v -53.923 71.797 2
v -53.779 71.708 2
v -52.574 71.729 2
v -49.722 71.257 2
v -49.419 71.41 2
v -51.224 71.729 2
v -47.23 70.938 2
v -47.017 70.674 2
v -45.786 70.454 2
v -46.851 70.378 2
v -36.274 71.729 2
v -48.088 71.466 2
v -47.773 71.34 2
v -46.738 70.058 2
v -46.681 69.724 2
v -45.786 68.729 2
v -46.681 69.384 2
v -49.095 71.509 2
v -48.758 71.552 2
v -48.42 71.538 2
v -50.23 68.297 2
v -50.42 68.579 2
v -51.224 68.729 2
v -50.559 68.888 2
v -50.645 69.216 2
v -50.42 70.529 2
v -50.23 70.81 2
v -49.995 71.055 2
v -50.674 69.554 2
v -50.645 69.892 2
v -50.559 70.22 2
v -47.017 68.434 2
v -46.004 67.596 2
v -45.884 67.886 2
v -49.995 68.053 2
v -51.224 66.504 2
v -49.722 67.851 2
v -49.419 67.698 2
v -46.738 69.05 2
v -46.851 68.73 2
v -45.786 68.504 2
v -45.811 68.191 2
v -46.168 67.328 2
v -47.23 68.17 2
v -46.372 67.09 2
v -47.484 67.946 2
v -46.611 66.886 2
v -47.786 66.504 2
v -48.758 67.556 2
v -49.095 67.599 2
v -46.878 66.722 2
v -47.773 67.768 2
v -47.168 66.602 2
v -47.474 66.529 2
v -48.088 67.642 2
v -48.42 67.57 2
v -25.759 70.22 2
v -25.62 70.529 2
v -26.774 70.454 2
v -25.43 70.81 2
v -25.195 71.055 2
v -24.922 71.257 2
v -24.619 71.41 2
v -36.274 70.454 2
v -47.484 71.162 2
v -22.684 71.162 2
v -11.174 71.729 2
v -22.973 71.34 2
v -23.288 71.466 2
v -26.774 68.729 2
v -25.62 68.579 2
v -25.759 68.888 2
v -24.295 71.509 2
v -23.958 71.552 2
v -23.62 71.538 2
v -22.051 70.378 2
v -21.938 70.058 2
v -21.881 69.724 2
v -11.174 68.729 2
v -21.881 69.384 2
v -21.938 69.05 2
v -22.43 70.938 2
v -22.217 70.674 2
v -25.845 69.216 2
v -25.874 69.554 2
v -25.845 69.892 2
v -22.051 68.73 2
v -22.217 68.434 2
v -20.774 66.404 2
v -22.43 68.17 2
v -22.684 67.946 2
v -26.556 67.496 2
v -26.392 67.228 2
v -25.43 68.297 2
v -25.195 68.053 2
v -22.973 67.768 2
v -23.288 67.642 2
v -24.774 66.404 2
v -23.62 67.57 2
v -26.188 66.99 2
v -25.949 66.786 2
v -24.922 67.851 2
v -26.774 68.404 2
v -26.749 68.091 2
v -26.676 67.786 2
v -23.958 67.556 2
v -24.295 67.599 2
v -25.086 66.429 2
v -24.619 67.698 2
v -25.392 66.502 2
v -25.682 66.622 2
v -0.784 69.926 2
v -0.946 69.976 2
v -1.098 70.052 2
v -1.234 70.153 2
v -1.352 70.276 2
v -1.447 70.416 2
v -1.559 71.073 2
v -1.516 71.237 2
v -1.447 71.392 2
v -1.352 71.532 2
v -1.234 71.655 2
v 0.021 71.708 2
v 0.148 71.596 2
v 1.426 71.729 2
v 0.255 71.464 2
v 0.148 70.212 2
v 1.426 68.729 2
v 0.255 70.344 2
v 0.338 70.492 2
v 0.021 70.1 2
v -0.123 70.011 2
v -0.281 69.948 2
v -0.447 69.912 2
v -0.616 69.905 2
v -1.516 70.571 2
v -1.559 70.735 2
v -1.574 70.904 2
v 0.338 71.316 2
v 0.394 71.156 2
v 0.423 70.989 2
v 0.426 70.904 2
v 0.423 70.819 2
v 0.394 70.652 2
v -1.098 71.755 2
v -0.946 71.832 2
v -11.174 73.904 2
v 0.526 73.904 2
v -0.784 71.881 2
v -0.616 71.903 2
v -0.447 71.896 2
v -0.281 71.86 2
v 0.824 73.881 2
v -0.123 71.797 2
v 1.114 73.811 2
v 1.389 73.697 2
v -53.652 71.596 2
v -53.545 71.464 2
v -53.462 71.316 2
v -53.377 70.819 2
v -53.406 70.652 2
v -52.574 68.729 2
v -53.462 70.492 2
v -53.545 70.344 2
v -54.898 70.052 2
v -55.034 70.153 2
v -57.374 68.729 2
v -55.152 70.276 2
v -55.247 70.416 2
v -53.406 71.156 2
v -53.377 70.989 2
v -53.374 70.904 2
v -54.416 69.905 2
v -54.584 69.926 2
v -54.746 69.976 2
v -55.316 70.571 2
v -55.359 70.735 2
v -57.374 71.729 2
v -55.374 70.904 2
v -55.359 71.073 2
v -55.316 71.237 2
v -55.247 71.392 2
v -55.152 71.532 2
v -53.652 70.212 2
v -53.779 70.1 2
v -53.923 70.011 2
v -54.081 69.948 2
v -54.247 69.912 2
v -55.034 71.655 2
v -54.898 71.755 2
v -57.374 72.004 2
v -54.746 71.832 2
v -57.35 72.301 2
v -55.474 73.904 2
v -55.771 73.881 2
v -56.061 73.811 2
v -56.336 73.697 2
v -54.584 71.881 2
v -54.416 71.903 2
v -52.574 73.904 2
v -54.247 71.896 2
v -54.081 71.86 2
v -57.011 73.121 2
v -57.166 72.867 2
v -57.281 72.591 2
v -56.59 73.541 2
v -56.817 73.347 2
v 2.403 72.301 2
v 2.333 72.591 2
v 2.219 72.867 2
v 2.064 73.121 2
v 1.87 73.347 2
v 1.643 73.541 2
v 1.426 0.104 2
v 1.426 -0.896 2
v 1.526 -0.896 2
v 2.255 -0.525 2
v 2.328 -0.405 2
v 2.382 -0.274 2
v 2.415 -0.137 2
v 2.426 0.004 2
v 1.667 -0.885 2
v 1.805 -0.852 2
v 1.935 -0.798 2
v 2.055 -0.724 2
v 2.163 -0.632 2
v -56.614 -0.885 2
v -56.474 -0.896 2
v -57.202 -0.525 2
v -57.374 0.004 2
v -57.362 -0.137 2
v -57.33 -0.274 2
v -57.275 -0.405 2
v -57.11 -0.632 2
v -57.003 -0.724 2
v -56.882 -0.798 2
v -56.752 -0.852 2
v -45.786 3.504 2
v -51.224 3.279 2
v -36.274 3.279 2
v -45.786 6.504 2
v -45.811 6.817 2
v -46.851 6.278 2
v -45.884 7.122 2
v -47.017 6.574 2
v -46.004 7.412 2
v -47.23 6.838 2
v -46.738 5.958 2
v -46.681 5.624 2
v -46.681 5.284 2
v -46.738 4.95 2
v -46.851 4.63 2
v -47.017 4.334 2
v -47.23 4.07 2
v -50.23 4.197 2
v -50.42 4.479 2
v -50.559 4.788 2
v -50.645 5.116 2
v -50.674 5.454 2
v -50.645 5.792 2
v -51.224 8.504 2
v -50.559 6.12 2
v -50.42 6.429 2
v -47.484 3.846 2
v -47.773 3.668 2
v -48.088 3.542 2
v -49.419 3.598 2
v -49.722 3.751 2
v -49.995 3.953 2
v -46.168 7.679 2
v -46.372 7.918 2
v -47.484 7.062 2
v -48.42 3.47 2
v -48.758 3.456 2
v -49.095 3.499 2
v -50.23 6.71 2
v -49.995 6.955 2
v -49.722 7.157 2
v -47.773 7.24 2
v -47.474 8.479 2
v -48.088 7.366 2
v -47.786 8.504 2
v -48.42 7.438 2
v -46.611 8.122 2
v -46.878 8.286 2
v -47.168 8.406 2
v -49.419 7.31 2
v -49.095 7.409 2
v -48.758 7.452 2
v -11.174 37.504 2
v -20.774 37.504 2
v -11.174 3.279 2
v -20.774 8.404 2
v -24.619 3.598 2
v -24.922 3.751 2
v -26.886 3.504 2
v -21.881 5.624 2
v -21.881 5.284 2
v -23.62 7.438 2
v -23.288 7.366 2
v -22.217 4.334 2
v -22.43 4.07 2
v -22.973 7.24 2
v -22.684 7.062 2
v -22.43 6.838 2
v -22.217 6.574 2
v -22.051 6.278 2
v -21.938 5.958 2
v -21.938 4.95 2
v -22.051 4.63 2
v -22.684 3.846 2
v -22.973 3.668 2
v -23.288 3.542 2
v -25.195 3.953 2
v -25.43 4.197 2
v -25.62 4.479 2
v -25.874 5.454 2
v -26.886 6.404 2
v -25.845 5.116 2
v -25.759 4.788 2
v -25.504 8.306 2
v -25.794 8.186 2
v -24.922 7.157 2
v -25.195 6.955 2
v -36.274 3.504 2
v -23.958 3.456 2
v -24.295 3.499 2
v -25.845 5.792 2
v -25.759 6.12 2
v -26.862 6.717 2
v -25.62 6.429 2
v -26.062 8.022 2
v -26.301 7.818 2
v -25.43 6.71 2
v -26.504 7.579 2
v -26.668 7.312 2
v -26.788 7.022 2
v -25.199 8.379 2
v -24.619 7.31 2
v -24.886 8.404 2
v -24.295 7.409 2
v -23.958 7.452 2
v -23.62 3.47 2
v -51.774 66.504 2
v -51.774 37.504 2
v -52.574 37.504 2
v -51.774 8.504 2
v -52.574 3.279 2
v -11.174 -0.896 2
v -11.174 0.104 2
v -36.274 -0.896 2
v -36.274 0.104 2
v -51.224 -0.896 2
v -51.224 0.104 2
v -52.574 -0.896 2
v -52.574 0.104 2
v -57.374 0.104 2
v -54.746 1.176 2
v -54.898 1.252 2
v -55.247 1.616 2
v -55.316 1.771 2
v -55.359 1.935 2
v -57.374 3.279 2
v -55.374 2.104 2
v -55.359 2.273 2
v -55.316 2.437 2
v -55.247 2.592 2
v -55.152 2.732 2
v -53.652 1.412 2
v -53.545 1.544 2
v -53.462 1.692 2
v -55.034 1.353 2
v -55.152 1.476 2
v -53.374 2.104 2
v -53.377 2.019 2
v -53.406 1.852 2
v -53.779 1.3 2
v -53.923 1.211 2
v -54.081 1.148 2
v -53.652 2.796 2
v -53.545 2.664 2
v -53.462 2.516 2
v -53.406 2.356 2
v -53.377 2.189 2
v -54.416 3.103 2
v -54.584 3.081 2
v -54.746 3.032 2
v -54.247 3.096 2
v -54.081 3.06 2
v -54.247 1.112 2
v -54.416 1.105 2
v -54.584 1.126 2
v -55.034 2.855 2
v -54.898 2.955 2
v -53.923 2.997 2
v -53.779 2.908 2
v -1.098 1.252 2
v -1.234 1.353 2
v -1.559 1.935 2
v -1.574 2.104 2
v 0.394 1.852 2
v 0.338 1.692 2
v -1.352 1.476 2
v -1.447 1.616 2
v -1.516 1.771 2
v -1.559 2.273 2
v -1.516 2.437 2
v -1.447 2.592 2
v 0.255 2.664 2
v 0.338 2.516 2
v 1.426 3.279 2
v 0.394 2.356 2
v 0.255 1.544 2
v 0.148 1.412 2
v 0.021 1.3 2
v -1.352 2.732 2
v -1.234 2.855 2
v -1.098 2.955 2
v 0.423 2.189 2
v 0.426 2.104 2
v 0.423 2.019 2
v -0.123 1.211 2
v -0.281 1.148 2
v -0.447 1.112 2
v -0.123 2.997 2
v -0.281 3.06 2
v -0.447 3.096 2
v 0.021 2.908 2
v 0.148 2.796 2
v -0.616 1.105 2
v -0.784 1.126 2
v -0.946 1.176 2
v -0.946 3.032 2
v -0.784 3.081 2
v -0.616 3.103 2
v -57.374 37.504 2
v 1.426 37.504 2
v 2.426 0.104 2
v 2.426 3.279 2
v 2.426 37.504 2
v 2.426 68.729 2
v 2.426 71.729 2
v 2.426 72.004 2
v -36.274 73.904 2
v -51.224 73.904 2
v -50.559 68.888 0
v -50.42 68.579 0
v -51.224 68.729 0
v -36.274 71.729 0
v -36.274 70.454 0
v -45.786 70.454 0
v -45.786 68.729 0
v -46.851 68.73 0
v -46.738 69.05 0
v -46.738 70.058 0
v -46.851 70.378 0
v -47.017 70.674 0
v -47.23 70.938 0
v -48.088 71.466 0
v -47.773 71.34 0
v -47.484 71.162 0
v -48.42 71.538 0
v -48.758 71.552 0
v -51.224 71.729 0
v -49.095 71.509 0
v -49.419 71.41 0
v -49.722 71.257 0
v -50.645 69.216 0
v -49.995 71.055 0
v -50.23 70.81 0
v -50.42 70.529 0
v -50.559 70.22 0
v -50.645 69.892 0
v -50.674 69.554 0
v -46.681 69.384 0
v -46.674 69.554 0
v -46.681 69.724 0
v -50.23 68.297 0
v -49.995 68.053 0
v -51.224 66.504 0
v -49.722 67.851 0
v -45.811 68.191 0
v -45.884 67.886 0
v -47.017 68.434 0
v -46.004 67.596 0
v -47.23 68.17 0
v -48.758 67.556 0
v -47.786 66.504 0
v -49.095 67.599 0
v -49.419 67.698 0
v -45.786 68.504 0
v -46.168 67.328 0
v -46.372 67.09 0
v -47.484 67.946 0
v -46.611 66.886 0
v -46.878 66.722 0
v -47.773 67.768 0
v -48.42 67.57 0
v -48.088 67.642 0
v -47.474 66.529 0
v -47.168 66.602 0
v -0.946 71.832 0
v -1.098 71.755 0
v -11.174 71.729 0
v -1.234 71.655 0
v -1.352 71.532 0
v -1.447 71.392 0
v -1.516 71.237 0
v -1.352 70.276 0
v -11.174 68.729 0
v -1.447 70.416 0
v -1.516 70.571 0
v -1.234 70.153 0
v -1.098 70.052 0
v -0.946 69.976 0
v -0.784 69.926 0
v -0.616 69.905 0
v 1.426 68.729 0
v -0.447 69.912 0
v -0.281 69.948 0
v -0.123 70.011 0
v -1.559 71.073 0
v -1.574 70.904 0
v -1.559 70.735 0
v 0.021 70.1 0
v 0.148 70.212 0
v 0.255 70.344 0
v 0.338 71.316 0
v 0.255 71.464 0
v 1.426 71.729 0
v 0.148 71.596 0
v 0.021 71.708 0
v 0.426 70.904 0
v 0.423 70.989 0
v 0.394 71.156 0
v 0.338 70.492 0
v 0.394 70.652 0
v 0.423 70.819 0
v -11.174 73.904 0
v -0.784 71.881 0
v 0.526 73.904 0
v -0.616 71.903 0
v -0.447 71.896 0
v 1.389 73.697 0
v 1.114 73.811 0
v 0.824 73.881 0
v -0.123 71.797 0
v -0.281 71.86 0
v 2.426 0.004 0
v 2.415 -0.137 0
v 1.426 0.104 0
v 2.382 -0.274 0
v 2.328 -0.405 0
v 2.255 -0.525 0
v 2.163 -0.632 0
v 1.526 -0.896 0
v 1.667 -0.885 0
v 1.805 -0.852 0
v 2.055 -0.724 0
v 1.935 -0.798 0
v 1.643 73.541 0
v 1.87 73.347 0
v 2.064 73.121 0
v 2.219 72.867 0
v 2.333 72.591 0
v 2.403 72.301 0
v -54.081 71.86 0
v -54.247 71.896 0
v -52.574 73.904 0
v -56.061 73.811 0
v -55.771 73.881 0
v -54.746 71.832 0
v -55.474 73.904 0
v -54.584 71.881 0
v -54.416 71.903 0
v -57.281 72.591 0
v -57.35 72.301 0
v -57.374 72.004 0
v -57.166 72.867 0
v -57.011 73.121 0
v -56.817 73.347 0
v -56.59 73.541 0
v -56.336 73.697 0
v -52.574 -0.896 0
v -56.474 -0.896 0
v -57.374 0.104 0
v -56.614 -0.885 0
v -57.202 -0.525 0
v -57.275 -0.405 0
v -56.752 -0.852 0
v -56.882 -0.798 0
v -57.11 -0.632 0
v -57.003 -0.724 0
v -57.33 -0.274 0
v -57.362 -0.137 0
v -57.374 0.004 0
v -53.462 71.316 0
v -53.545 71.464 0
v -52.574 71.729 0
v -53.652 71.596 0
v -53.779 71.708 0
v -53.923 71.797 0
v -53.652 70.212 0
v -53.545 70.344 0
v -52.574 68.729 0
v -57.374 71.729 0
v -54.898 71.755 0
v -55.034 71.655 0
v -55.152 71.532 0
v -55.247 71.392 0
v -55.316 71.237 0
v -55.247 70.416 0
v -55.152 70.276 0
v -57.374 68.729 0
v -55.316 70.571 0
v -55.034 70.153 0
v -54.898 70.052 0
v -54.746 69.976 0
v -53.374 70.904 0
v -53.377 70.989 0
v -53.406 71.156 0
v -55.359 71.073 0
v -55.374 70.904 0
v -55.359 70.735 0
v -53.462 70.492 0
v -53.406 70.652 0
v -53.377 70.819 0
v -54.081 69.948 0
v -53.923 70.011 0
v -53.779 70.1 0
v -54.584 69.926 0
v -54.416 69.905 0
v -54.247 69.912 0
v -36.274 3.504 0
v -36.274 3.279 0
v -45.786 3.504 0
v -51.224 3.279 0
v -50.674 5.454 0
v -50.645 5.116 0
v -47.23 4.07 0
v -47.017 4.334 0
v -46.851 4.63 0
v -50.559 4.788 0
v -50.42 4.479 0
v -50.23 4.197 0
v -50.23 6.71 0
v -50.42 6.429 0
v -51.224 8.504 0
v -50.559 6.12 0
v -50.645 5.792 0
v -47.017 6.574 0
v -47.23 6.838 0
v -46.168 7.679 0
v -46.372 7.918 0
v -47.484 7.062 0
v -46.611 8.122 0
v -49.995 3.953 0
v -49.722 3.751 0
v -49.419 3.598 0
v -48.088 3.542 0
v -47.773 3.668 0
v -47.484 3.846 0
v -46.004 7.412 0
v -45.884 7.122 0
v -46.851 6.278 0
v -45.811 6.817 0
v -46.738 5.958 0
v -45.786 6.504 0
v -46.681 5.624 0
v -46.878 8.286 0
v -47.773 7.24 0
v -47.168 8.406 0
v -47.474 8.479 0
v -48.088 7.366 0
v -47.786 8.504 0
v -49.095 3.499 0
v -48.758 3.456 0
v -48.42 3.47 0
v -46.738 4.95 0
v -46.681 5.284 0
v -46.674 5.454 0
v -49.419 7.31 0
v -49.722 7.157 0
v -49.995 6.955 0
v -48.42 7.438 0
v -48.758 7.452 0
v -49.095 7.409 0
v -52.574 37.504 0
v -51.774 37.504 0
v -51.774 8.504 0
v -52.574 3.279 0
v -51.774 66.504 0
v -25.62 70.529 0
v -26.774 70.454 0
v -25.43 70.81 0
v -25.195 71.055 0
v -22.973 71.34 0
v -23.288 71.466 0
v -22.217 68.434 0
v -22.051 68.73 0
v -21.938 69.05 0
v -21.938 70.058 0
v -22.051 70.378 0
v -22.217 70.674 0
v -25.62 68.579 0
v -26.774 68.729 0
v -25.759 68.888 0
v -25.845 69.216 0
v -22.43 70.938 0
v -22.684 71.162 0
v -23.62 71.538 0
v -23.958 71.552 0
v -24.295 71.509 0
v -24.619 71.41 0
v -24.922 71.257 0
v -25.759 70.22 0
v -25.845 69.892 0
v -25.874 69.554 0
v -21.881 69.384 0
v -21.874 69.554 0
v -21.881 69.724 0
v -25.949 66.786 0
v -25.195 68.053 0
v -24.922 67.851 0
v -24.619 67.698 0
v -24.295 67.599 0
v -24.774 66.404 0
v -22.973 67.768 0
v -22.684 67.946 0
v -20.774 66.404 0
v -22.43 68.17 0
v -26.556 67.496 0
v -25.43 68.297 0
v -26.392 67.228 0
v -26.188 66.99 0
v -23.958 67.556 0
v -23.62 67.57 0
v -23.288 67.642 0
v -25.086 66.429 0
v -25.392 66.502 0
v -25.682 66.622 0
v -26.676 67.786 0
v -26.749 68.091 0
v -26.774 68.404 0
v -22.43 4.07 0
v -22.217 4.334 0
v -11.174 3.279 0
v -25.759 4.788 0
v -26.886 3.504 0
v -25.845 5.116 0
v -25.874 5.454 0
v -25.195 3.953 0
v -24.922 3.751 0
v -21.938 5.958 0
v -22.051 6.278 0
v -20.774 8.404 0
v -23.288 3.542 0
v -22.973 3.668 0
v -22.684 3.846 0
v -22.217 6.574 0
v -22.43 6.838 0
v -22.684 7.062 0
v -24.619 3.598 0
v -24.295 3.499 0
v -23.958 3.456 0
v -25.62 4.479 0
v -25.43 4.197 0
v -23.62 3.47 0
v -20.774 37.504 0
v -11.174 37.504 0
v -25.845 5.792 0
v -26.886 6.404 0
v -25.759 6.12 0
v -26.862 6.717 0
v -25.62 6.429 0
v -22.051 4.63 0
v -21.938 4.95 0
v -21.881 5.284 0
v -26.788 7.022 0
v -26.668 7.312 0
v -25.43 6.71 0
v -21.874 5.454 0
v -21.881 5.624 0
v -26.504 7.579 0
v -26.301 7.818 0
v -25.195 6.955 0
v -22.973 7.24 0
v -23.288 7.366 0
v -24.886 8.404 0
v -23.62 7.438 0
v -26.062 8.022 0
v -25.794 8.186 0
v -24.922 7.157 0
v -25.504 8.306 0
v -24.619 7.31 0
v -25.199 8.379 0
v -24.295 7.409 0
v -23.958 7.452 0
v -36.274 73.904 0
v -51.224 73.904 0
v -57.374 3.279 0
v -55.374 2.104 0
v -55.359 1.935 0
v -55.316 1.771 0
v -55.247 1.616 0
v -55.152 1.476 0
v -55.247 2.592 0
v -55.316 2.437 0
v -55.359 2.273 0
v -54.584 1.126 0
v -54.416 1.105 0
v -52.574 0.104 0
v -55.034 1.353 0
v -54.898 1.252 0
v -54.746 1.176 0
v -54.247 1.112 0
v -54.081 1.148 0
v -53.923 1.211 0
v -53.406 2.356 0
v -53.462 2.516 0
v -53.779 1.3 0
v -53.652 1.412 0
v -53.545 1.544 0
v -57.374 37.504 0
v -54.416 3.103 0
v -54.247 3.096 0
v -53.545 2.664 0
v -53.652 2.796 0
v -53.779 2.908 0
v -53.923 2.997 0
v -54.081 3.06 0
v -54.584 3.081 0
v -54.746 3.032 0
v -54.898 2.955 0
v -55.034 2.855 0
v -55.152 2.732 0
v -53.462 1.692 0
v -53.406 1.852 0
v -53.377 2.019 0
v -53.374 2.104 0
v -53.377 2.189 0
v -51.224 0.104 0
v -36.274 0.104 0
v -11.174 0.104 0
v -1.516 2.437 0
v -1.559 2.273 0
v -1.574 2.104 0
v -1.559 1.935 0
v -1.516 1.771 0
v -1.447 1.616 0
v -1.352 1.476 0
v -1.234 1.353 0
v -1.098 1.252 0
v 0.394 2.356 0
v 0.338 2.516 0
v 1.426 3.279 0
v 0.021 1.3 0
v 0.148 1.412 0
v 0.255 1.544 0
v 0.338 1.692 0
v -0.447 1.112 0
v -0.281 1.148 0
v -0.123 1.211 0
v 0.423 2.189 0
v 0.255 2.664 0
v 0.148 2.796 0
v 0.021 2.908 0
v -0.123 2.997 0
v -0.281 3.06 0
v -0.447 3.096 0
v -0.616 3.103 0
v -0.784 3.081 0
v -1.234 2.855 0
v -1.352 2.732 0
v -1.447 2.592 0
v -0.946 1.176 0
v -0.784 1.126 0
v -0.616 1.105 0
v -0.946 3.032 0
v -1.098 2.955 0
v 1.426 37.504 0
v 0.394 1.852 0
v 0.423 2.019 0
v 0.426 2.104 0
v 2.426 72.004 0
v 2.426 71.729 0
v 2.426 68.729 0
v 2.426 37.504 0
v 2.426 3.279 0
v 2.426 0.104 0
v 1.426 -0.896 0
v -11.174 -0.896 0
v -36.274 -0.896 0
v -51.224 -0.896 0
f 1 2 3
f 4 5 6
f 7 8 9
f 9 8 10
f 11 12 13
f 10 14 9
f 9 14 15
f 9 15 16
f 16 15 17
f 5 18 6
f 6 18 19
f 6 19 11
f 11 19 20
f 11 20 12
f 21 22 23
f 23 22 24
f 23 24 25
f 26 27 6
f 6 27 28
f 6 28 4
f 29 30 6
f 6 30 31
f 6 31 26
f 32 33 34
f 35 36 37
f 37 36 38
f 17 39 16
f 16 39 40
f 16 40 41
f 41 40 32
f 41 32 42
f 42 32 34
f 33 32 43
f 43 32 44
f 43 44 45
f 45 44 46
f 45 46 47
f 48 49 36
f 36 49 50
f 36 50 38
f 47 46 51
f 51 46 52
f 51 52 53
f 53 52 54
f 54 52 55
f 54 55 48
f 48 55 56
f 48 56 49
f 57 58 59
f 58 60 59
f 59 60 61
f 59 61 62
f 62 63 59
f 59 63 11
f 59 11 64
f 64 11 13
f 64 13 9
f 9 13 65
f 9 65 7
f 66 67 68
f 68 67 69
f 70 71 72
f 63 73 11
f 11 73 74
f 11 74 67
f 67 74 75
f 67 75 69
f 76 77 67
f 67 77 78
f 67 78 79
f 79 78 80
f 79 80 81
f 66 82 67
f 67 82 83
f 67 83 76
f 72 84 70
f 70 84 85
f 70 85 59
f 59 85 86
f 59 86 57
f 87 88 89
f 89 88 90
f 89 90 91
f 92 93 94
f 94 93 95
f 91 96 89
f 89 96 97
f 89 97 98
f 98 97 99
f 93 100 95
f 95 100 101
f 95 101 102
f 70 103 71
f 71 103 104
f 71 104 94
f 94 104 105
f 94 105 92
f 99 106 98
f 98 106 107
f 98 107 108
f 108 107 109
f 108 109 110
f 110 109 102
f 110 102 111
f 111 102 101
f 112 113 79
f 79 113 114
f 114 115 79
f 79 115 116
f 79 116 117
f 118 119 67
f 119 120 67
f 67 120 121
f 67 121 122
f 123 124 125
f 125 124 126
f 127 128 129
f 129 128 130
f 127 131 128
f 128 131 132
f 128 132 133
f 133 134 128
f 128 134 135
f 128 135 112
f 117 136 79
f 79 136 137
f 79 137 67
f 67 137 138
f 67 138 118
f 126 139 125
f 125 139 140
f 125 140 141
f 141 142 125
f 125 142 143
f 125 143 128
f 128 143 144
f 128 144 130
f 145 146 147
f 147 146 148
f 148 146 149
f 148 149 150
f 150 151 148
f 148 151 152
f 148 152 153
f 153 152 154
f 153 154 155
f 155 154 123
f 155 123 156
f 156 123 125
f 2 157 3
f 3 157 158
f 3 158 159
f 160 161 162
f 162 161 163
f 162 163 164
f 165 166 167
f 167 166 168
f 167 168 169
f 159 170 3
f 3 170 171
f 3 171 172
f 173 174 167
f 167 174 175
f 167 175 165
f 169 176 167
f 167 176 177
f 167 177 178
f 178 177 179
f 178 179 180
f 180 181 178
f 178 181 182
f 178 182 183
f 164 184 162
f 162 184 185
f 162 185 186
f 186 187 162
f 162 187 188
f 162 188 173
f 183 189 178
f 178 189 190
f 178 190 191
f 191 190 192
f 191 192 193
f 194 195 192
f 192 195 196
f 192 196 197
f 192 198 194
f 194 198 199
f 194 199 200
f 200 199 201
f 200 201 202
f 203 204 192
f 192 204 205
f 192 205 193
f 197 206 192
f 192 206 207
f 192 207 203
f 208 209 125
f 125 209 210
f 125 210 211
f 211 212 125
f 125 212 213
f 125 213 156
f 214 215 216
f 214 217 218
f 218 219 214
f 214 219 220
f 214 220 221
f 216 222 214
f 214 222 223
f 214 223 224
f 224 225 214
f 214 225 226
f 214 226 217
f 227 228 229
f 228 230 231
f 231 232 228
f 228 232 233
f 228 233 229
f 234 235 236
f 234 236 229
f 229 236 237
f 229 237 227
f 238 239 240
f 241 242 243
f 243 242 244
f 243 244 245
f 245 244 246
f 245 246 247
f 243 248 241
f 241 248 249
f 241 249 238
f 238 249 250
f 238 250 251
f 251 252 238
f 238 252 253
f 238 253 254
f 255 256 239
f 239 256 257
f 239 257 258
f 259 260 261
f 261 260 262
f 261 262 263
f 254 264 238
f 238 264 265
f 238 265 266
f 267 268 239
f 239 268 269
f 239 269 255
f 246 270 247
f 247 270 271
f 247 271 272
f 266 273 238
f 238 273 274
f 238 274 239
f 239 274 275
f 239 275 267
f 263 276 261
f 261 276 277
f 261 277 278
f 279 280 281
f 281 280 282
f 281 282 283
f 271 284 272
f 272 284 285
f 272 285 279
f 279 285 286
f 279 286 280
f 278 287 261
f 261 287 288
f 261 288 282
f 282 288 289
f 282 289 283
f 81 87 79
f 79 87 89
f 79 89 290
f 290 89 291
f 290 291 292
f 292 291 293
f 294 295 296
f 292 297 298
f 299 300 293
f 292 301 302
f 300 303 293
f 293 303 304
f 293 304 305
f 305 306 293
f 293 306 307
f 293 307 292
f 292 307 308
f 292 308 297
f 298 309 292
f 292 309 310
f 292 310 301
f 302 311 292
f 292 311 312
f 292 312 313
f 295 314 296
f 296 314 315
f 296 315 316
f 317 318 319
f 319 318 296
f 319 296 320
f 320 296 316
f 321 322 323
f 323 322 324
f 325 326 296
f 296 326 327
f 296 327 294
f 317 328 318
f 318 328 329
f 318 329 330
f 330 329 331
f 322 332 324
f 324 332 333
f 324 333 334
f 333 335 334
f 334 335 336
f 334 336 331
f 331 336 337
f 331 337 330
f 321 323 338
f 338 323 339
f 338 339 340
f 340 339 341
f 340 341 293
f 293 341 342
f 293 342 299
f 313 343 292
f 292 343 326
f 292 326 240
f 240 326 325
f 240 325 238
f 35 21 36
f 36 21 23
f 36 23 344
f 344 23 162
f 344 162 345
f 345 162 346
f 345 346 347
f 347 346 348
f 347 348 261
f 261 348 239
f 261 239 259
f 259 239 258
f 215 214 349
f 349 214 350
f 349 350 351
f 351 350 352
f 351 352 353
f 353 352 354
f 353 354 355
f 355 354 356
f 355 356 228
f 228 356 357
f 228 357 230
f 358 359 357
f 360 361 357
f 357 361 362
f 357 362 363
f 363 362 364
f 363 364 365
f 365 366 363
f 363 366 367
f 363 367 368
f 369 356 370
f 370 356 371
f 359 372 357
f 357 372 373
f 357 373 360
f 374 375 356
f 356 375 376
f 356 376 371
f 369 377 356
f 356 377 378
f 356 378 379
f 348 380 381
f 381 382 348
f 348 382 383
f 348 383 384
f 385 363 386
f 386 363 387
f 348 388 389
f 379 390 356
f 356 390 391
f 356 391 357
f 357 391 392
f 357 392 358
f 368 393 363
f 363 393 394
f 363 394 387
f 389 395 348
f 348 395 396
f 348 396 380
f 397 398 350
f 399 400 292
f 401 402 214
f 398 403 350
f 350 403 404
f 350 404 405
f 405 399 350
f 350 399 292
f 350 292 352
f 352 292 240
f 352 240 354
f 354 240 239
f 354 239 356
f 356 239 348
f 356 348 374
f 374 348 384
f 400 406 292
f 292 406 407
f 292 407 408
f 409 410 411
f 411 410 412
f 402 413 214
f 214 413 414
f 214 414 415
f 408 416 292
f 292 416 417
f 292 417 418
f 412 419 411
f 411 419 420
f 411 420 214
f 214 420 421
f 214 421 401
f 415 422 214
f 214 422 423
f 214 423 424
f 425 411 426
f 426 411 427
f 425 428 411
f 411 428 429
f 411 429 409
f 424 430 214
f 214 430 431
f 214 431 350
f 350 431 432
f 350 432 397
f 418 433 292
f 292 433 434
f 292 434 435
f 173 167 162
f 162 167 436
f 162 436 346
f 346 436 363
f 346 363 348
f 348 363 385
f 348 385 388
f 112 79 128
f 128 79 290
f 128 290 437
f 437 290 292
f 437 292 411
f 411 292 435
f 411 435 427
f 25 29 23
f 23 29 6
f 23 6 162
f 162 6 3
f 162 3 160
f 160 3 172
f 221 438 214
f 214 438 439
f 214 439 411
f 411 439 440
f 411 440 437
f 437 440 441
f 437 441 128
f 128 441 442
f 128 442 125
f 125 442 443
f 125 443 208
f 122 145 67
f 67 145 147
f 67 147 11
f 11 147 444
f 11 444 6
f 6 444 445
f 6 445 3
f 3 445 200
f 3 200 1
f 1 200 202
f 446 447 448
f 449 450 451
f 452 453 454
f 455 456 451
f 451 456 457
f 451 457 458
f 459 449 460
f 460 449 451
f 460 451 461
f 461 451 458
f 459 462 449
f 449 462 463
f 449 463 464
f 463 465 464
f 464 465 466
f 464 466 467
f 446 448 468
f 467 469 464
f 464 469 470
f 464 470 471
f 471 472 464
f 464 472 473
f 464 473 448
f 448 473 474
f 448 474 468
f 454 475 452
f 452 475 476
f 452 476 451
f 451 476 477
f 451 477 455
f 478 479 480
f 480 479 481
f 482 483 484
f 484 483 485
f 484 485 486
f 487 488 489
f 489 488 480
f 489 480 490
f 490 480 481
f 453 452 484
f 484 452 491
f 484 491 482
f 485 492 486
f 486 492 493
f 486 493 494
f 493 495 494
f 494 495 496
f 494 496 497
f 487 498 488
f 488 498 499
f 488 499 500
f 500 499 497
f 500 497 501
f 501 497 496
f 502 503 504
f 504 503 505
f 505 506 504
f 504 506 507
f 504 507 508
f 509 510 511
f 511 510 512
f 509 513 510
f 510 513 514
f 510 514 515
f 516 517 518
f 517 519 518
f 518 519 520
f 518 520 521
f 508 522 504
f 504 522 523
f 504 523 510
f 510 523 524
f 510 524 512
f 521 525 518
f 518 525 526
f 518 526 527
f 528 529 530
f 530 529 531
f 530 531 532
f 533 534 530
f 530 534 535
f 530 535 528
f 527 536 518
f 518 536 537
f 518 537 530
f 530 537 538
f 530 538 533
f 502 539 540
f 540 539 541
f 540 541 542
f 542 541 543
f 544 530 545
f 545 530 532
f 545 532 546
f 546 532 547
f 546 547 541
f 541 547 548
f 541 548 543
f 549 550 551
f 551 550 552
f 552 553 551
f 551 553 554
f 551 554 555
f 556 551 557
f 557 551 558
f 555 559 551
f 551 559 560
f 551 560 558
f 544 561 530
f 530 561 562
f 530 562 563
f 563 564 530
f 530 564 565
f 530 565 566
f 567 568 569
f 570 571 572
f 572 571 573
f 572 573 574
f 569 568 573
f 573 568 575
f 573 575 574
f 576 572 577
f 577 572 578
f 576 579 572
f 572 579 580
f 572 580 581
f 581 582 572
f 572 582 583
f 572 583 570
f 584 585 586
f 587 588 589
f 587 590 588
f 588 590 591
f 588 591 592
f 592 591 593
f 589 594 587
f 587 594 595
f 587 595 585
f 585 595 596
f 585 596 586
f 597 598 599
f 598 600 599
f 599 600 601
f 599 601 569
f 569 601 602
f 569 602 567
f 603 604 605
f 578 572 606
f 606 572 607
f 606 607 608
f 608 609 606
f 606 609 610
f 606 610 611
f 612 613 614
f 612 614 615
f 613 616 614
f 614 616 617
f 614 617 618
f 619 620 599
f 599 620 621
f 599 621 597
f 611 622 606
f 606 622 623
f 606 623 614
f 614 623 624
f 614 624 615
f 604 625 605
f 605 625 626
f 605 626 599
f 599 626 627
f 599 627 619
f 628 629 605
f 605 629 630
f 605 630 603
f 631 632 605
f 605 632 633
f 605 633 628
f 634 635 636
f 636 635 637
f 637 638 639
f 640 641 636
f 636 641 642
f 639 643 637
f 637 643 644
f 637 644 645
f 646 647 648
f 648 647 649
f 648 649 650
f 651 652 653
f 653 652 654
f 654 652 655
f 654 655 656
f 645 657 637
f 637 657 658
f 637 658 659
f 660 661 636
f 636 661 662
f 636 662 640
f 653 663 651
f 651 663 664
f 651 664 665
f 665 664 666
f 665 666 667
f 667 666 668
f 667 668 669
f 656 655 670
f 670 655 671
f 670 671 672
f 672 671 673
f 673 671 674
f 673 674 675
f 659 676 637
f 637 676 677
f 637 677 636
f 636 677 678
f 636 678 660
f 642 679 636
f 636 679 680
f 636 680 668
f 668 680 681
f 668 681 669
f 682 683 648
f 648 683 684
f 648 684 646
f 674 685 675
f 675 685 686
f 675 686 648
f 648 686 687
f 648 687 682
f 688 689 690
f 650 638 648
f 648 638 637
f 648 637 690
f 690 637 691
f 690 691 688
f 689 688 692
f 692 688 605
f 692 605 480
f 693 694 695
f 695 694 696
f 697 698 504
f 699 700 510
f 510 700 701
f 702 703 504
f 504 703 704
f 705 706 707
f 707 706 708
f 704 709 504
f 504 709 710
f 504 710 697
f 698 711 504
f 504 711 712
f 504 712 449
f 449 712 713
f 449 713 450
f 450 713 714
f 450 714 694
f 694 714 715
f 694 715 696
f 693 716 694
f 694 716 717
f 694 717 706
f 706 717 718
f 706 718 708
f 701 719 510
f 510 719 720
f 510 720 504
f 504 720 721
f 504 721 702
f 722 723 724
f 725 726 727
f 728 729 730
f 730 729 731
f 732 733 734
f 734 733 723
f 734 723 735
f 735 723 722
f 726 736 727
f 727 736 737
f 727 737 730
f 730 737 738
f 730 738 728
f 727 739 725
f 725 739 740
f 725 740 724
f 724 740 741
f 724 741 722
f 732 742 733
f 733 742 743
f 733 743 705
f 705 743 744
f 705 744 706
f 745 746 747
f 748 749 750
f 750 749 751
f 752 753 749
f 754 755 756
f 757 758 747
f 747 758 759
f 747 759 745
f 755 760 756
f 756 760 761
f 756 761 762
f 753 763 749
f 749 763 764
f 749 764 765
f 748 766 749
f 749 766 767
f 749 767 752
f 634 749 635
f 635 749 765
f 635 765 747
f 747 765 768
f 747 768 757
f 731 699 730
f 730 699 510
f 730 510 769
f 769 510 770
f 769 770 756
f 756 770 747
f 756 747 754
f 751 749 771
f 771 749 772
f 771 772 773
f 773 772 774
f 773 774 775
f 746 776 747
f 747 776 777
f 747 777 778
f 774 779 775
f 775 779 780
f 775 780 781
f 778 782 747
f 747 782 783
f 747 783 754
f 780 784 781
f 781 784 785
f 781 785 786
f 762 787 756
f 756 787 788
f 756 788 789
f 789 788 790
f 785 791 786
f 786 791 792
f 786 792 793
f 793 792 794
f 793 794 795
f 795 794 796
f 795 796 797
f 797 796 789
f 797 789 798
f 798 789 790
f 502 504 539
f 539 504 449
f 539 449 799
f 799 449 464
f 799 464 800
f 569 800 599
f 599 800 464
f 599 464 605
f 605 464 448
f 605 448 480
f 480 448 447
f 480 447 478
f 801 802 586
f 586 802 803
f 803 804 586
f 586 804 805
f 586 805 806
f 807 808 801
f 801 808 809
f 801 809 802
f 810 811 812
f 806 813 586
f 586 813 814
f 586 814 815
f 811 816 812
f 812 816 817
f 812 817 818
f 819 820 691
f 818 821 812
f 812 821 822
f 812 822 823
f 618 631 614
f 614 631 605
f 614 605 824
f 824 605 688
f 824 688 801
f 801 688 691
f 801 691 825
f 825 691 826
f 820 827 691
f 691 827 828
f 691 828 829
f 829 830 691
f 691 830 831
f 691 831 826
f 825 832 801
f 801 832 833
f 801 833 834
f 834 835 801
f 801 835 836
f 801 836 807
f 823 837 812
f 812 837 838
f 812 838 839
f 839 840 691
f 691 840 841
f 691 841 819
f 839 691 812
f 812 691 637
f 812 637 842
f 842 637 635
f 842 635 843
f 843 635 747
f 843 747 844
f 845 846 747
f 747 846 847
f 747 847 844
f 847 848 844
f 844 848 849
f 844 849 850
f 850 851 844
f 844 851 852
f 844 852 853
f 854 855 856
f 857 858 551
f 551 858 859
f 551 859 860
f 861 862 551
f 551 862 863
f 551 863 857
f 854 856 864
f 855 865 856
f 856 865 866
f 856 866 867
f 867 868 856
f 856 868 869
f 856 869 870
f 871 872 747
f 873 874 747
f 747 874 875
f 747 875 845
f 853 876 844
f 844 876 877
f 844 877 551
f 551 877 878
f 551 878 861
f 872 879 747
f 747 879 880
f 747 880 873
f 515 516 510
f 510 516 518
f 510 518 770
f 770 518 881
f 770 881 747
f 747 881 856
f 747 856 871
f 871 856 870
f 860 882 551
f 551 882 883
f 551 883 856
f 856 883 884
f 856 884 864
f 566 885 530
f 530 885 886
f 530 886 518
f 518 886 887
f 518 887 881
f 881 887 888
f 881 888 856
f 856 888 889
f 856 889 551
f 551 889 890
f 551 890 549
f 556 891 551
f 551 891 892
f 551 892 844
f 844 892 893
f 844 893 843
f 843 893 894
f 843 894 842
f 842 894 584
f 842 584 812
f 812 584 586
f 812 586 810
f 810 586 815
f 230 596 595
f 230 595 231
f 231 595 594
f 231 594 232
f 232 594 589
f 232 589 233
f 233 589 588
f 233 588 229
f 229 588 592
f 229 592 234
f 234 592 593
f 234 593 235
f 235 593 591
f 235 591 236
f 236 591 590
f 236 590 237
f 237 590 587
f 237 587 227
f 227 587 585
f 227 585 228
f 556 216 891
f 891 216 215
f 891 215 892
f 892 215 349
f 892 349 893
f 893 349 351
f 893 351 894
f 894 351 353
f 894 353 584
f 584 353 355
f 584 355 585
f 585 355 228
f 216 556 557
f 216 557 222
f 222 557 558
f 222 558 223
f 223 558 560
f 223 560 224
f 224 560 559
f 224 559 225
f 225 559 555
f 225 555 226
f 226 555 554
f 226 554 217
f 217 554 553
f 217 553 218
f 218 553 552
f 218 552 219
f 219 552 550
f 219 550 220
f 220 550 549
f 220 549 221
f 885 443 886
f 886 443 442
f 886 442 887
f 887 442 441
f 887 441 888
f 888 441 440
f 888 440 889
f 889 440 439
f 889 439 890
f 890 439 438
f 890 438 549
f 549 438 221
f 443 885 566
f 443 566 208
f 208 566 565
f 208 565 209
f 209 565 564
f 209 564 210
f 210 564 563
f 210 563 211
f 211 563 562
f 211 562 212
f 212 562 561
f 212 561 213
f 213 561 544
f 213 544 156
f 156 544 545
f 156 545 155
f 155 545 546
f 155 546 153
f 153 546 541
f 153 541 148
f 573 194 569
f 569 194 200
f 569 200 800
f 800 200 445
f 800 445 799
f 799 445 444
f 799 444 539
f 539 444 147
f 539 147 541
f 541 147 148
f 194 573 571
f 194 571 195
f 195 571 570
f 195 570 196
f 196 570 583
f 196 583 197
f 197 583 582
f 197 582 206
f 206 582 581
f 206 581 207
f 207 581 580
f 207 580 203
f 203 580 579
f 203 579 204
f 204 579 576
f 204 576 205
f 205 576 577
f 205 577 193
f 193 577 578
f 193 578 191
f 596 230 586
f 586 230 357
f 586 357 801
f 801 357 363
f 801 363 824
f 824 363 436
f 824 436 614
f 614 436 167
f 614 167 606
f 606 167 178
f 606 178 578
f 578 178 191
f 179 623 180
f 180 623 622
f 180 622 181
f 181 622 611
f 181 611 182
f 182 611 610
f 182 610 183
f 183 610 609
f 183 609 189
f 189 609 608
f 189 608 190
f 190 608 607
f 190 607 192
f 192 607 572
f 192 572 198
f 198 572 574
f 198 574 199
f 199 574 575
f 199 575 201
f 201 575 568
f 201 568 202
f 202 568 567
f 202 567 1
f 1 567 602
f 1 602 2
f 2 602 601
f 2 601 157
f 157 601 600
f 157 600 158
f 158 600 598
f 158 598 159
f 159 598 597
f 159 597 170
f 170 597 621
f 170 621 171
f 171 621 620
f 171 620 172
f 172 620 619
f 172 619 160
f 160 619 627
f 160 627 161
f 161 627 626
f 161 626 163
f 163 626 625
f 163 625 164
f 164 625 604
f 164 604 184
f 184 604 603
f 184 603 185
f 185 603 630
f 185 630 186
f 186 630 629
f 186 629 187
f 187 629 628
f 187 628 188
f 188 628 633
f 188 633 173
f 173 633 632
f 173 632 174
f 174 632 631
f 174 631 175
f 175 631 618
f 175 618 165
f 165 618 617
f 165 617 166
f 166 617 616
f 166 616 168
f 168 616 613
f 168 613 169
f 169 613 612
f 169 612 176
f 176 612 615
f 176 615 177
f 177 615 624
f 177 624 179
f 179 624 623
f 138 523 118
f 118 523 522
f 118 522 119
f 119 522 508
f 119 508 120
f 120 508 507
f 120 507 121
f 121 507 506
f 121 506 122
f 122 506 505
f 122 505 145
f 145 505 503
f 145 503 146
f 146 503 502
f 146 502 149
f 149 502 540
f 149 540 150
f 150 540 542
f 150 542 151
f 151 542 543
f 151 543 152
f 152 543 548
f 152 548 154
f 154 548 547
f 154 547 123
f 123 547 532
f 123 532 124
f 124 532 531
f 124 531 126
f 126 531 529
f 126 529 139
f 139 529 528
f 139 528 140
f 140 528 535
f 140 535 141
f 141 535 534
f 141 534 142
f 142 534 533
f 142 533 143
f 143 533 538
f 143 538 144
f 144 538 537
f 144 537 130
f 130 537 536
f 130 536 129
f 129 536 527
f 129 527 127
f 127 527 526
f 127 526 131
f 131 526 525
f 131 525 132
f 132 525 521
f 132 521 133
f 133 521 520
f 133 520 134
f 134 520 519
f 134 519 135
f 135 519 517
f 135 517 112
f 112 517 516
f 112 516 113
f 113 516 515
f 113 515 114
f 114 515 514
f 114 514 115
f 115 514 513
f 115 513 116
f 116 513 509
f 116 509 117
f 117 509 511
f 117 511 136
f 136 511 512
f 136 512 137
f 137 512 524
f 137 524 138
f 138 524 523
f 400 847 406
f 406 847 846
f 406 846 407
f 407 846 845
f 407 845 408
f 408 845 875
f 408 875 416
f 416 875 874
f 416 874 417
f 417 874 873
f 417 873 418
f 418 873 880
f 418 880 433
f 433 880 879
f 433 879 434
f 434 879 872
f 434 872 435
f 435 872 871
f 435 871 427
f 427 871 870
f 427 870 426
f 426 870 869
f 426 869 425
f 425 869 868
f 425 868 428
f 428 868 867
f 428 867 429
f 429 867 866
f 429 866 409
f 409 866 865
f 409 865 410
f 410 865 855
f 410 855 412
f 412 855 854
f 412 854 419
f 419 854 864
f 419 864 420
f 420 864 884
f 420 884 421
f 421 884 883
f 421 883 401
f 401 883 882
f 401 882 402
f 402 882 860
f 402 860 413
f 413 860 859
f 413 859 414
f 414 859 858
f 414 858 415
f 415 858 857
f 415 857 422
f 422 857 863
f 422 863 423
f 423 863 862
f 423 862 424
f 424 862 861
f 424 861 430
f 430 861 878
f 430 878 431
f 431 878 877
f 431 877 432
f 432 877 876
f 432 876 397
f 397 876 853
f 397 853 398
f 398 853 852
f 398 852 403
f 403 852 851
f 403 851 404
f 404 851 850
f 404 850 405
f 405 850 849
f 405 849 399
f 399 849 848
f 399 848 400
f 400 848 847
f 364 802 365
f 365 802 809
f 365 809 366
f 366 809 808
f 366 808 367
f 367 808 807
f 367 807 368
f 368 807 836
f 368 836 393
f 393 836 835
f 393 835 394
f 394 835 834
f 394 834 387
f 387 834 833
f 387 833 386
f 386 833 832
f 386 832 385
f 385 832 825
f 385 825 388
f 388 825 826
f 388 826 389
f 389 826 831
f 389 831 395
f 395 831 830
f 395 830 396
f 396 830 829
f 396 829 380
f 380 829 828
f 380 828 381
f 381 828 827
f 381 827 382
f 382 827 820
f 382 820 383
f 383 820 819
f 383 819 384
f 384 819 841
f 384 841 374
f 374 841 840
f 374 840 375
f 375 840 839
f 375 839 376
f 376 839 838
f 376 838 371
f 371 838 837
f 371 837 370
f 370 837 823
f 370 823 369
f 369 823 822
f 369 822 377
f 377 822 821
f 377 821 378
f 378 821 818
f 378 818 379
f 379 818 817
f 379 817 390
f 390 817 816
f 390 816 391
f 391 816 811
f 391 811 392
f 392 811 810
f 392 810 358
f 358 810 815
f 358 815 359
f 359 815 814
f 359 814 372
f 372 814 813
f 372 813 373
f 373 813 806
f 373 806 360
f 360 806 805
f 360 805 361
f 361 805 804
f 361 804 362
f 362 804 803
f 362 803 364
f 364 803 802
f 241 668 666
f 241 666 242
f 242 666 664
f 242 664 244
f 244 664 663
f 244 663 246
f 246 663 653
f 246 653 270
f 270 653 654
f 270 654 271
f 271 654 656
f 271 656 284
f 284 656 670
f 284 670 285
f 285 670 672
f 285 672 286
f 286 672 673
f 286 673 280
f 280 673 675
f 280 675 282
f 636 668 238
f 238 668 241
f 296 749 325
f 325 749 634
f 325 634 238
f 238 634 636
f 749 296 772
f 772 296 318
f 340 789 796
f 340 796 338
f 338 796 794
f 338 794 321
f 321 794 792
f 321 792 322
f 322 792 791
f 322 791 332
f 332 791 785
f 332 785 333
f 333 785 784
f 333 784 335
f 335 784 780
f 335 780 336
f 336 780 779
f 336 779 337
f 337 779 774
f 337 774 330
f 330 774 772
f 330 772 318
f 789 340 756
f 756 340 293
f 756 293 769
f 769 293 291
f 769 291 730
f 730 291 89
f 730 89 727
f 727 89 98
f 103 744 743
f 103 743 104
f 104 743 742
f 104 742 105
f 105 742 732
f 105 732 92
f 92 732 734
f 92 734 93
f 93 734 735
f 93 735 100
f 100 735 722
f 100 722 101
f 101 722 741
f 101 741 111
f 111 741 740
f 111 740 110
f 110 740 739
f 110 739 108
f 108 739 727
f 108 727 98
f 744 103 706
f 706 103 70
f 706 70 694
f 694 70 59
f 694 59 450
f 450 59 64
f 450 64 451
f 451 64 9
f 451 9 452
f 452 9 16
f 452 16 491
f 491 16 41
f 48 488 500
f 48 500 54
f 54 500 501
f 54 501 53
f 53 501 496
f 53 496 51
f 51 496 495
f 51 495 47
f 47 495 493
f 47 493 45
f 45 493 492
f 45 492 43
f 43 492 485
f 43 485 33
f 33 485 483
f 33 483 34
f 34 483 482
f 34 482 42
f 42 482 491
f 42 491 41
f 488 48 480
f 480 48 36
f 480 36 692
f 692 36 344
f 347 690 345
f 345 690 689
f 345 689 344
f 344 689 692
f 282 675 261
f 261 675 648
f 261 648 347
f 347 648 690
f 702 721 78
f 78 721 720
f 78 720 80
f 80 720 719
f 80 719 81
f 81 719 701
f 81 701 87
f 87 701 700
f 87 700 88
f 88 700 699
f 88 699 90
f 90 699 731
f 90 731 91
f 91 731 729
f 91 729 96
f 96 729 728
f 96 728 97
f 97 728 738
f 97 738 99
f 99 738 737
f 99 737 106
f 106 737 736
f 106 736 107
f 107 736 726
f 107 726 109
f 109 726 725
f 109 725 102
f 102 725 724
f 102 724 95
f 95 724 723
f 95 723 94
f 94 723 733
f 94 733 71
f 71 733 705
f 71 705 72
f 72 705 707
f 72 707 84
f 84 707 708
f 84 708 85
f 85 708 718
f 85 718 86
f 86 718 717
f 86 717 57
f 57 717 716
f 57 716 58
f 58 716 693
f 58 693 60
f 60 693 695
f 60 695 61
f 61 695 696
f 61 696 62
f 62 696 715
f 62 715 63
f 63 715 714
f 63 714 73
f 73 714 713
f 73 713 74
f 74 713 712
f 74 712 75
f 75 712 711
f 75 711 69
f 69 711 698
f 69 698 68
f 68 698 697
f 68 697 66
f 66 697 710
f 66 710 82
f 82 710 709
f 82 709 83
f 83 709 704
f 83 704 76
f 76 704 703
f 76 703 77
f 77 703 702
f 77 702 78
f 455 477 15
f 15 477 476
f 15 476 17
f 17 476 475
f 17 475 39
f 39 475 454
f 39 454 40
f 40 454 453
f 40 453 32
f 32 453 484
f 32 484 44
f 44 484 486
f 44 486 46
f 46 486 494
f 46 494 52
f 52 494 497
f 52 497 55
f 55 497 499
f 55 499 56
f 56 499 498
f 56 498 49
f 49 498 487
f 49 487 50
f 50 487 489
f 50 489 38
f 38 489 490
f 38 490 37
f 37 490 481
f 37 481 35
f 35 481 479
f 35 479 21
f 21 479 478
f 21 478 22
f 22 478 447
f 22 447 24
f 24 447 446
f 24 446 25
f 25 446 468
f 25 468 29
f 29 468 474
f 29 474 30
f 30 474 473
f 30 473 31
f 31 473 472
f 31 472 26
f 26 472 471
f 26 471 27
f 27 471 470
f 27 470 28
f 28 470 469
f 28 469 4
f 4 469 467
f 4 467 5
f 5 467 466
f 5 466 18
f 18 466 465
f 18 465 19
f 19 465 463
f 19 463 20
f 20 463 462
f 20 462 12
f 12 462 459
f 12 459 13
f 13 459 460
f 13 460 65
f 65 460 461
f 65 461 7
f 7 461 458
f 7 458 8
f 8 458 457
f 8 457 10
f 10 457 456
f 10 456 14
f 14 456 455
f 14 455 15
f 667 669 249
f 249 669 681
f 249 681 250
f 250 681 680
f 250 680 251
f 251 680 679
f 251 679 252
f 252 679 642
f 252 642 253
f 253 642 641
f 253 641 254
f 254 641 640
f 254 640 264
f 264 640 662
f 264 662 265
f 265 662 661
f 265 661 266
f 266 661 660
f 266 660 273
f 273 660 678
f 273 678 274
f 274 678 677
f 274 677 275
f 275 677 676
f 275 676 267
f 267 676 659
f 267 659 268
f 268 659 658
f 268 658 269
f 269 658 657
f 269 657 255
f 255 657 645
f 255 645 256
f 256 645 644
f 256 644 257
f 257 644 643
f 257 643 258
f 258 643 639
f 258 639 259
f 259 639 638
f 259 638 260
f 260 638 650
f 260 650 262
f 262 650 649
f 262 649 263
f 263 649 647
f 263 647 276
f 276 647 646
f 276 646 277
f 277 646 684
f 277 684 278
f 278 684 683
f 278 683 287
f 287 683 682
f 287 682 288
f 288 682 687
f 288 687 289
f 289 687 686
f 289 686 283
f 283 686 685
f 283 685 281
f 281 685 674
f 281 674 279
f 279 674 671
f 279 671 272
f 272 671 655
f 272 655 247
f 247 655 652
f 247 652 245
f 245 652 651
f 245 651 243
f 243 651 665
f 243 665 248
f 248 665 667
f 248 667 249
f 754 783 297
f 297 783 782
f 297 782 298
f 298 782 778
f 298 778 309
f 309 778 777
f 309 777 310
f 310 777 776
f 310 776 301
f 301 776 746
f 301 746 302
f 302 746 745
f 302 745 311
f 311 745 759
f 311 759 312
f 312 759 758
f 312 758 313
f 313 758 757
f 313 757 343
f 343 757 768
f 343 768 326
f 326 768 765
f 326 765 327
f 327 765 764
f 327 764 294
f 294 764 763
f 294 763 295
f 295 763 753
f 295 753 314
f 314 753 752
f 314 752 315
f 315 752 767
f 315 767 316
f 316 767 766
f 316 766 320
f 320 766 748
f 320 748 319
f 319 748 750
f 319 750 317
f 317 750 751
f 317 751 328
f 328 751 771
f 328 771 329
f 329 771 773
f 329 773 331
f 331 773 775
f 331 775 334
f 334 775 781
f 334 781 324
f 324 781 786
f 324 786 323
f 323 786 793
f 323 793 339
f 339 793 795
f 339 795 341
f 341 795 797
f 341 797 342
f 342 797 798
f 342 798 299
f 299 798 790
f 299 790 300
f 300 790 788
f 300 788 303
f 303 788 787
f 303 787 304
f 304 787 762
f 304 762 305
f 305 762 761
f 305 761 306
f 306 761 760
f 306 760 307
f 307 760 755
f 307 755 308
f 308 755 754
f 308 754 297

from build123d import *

# Parameters (mm, degrees)
SKETCH_2_R          = 1
EXTRUDE_1_DEPTH     = 2
SKETCH_4_R          = 2
CUT_EXTRUDE_1_DEPTH = 3


with BuildPart() as part:
    # 草图2 → 凸台-拉伸1 (new body)
    with BuildSketch(Plane.XY):
        with BuildLine():
            Line((-56.473572366, -0.89607242), (1.526427634, -0.89607242))
            ThreePointArc((1.526427634, -0.89607242), (2.162823737, -0.632468523), (2.426427634, 0.00392758))
            Line((2.426427634, 0.00392758), (2.426427634, 72.00392758))
            ThreePointArc((2.426427634, 72.00392758), (1.869930519, 73.347430464), (0.526427634, 73.90392758))
            Line((0.526427634, 73.90392758), (-55.473572366, 73.90392758))
            ThreePointArc((-55.473572366, 73.90392758), (-56.81707525, 73.347430464), (-57.373572366, 72.00392758))
            Line((-57.373572366, 72.00392758), (-57.373572366, 0.00392758))
            ThreePointArc((-57.373572366, 0.00392758), (-57.109968469, -0.632468523), (-56.473572366, -0.89607242))
        make_face()
        with Locations((-54.373572366, 70.90392758)):
            Circle(SKETCH_2_R, mode=Mode.SUBTRACT)
        with Locations((-0.573572366, 70.90392758)):
            Circle(SKETCH_2_R, mode=Mode.SUBTRACT)
        with Locations((-0.573572366, 2.10392758)):
            Circle(SKETCH_2_R, mode=Mode.SUBTRACT)
        with Locations((-54.373572366, 2.10392758)):
            Circle(SKETCH_2_R, mode=Mode.SUBTRACT)
    extrude(amount=EXTRUDE_1_DEPTH)

    # 草图4 → 切除-拉伸1 (cut)
    with BuildSketch(Plane.XY):
        with BuildLine():
            Line((-51.773572366, 66.50392758), (-51.773572366, 8.50392758))
            Line((-51.773572366, 8.50392758), (-47.786382689, 8.50392758))
            ThreePointArc((-47.786382689, 8.50392758), (-46.372169126, 7.918141142), (-45.786382689, 6.50392758))
            Line((-45.786382689, 6.50392758), (-45.786382689, 3.50392758))
            Line((-45.786382689, 3.50392758), (-26.886382689, 3.50392758))
            Line((-26.886382689, 3.50392758), (-26.886382689, 6.40392758))
            ThreePointArc((-26.886382689, 6.40392758), (-26.300596251, 7.818141142), (-24.886382689, 8.40392758))
            Line((-24.886382689, 8.40392758), (-20.773572366, 8.40392758))
            Line((-20.773572366, 8.40392758), (-20.773572366, 66.40392758))
            Line((-20.773572366, 66.40392758), (-24.773572366, 66.40392758))
            ThreePointArc((-24.773572366, 66.40392758), (-26.187785928, 66.989714017), (-26.773572366, 68.40392758))
            Line((-26.773572366, 68.40392758), (-26.773572366, 70.45392758))
            Line((-26.773572366, 70.45392758), (-45.786382689, 70.45392758))
            Line((-45.786382689, 70.45392758), (-45.786382689, 68.50392758))
            ThreePointArc((-45.786382689, 68.50392758), (-46.372169126, 67.089714017), (-47.786382689, 66.50392758))
            Line((-47.786382689, 66.50392758), (-51.773572366, 66.50392758))
        make_face()
        with Locations(Location((-23.873572366, 69.55392758, 0), (0, 0, 180))):
            Circle(SKETCH_4_R)
        with Locations(Location((-48.673572366, 69.55392758, 0), (0, 0, 180))):
            Circle(SKETCH_4_R)
        with Locations(Location((-48.673572366, 5.45392758, 0), (0, 0, 180))):
            Circle(SKETCH_4_R)
        with Locations(Location((-23.873572366, 5.45392758, 0), (0, 0, 180))):
            Circle(SKETCH_4_R)
    extrude(amount=CUT_EXTRUDE_1_DEPTH, mode=Mode.SUBTRACT)


solid = part.part
